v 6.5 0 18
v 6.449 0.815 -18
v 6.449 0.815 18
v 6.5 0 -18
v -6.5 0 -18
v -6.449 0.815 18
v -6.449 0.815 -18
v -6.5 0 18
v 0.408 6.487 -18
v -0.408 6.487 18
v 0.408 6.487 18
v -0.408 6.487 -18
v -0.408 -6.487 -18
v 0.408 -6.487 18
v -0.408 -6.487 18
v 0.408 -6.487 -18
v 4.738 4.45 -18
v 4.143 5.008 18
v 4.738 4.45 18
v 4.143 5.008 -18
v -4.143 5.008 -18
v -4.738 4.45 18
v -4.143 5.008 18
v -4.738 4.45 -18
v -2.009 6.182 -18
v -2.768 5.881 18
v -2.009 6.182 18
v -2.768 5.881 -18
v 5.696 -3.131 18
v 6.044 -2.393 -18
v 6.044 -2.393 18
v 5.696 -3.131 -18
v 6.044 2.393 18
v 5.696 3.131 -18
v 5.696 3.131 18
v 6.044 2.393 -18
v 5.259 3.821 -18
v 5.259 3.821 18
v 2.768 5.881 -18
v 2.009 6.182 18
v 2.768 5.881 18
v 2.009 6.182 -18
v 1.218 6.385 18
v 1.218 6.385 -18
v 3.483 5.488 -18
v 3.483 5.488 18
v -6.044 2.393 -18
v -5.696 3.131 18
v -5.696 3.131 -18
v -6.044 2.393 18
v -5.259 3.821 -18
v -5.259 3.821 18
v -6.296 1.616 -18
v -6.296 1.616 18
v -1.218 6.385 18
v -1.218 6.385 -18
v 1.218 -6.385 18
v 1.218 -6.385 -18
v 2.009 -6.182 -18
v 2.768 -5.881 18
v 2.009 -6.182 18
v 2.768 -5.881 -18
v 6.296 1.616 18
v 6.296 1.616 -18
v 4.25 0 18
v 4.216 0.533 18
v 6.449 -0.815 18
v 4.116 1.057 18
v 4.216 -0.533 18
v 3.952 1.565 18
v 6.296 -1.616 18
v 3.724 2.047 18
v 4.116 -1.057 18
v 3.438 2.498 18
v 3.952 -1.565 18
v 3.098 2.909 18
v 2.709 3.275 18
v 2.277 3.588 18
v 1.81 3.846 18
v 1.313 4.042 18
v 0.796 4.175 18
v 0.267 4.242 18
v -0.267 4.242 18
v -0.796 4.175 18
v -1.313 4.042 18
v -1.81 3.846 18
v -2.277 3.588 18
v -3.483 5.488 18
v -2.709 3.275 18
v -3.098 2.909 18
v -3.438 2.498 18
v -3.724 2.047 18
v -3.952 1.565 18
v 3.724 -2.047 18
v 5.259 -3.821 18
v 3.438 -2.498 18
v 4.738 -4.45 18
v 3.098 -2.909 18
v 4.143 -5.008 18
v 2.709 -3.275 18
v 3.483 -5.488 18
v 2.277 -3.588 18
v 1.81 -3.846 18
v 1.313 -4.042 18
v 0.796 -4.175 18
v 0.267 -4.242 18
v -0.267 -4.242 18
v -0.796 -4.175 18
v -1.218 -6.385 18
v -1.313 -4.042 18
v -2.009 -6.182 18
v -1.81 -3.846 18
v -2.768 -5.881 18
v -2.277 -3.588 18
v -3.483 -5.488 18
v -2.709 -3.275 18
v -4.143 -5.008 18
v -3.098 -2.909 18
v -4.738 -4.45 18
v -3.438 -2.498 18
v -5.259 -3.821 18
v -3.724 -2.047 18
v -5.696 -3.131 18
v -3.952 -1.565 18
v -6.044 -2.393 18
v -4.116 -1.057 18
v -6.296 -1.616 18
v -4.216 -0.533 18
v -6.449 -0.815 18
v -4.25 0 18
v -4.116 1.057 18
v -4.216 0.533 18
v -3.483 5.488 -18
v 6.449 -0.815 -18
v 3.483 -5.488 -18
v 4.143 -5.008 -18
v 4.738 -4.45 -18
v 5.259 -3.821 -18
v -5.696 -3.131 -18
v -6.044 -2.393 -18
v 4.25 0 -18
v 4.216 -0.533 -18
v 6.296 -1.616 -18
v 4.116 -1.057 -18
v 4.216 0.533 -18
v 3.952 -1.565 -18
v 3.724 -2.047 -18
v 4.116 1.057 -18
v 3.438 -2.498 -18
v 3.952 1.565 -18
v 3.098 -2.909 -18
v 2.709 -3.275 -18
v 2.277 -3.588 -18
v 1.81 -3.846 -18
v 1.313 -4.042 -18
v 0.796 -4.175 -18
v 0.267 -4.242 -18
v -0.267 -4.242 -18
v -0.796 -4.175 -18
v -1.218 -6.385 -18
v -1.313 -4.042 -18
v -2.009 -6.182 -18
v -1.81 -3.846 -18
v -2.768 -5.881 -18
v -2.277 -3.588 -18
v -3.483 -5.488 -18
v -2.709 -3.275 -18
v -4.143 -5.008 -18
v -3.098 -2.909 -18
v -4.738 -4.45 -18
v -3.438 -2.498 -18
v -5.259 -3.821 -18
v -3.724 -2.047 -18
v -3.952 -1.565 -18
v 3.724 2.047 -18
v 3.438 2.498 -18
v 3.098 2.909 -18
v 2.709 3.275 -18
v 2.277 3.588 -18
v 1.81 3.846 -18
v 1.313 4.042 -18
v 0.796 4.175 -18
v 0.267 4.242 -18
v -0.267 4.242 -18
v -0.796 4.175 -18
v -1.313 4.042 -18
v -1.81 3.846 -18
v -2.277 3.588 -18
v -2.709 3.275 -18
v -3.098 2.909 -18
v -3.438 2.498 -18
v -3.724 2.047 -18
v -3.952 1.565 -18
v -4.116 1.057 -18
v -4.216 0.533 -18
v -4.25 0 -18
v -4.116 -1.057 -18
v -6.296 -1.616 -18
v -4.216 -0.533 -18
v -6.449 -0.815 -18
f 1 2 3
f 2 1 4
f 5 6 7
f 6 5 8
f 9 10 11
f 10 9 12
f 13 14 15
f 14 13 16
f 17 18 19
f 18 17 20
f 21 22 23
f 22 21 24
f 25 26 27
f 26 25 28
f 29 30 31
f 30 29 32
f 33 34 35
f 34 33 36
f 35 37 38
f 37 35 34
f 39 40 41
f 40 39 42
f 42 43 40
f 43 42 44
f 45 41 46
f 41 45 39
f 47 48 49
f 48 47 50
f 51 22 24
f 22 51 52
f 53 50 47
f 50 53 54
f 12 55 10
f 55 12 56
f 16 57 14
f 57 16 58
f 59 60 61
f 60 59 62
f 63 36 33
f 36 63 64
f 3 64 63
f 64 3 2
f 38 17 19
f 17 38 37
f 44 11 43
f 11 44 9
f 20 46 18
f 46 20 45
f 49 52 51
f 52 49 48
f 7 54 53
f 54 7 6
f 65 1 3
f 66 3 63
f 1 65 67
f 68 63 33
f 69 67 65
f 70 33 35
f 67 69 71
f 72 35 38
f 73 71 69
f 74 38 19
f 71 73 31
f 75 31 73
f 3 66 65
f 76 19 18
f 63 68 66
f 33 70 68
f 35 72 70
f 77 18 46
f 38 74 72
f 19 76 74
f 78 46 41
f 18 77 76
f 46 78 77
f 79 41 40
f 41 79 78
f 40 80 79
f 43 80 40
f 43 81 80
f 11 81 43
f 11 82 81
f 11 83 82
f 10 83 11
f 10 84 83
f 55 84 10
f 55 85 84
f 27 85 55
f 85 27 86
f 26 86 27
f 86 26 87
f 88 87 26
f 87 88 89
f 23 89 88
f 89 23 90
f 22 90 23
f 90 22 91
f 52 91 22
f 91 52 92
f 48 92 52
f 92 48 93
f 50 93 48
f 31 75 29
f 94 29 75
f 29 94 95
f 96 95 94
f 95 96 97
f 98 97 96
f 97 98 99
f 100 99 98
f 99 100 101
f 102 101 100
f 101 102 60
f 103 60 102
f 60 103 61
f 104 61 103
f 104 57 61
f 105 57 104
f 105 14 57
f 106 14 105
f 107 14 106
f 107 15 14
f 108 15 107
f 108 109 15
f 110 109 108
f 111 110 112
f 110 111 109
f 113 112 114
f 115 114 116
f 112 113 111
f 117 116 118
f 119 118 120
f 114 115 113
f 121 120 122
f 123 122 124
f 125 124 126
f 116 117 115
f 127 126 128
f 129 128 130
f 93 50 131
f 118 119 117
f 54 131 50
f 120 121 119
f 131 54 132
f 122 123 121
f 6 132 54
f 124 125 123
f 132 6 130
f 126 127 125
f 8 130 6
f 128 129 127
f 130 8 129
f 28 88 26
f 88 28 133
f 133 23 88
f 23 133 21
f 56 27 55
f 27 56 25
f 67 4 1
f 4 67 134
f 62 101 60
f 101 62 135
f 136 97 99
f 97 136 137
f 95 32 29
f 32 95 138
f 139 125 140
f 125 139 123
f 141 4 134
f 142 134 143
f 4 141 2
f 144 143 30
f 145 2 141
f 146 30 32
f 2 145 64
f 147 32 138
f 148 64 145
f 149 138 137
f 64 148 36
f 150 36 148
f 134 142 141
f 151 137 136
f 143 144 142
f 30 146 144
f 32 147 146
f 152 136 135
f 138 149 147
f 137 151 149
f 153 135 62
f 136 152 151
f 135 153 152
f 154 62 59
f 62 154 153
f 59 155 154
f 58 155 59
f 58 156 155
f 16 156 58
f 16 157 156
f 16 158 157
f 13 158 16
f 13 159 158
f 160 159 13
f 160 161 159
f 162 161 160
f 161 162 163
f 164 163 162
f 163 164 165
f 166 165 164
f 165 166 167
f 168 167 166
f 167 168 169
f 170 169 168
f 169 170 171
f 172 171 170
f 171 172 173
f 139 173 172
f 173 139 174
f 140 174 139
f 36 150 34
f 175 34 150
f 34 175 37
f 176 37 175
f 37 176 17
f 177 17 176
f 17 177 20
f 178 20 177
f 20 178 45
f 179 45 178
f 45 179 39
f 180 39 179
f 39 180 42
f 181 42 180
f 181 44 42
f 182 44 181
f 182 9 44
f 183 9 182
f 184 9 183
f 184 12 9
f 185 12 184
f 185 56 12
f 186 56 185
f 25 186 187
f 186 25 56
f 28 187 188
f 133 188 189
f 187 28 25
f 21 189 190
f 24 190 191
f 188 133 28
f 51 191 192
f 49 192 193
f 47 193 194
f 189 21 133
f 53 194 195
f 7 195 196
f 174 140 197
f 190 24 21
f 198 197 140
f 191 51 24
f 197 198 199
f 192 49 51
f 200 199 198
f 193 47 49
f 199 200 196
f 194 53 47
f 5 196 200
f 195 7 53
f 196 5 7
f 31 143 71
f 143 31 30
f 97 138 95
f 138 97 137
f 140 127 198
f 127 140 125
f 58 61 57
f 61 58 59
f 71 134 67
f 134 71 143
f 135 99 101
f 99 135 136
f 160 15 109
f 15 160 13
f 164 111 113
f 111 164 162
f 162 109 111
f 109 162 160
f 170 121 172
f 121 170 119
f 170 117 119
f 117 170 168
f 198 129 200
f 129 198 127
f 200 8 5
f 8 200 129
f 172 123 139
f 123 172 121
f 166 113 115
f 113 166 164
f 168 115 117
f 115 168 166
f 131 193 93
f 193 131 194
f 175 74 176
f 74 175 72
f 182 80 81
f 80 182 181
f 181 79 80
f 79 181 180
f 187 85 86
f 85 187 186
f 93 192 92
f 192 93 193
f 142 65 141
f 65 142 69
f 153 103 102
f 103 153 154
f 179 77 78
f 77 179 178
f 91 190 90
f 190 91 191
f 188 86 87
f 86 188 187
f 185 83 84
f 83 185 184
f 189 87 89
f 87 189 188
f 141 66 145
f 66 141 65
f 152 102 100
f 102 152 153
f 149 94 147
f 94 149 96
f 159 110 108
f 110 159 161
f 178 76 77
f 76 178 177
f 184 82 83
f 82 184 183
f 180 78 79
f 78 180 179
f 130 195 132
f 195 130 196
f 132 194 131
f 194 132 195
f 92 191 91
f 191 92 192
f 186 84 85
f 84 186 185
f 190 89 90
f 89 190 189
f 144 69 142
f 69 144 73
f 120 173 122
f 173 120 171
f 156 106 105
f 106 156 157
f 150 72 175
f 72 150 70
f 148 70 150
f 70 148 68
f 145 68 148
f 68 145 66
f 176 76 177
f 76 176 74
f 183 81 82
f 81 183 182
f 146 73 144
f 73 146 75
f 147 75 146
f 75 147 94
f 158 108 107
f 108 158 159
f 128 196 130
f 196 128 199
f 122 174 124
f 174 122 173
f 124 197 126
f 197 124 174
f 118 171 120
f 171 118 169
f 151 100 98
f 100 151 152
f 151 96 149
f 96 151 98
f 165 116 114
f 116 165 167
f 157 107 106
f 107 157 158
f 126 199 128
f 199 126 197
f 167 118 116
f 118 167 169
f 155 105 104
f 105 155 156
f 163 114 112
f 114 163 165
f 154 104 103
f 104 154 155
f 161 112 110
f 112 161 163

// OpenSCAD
$fn = 50;


difference() {
	union() {
		translate(v = [0, 0, -18.0000000000]) {
			cylinder(h = 36, r = 6.5000000000);
		}
	}
	union() {
		translate(v = [0, 0, -100.0000000000]) {
			cylinder(h = 200, r = 4.2500000000);
		}
	}
}
